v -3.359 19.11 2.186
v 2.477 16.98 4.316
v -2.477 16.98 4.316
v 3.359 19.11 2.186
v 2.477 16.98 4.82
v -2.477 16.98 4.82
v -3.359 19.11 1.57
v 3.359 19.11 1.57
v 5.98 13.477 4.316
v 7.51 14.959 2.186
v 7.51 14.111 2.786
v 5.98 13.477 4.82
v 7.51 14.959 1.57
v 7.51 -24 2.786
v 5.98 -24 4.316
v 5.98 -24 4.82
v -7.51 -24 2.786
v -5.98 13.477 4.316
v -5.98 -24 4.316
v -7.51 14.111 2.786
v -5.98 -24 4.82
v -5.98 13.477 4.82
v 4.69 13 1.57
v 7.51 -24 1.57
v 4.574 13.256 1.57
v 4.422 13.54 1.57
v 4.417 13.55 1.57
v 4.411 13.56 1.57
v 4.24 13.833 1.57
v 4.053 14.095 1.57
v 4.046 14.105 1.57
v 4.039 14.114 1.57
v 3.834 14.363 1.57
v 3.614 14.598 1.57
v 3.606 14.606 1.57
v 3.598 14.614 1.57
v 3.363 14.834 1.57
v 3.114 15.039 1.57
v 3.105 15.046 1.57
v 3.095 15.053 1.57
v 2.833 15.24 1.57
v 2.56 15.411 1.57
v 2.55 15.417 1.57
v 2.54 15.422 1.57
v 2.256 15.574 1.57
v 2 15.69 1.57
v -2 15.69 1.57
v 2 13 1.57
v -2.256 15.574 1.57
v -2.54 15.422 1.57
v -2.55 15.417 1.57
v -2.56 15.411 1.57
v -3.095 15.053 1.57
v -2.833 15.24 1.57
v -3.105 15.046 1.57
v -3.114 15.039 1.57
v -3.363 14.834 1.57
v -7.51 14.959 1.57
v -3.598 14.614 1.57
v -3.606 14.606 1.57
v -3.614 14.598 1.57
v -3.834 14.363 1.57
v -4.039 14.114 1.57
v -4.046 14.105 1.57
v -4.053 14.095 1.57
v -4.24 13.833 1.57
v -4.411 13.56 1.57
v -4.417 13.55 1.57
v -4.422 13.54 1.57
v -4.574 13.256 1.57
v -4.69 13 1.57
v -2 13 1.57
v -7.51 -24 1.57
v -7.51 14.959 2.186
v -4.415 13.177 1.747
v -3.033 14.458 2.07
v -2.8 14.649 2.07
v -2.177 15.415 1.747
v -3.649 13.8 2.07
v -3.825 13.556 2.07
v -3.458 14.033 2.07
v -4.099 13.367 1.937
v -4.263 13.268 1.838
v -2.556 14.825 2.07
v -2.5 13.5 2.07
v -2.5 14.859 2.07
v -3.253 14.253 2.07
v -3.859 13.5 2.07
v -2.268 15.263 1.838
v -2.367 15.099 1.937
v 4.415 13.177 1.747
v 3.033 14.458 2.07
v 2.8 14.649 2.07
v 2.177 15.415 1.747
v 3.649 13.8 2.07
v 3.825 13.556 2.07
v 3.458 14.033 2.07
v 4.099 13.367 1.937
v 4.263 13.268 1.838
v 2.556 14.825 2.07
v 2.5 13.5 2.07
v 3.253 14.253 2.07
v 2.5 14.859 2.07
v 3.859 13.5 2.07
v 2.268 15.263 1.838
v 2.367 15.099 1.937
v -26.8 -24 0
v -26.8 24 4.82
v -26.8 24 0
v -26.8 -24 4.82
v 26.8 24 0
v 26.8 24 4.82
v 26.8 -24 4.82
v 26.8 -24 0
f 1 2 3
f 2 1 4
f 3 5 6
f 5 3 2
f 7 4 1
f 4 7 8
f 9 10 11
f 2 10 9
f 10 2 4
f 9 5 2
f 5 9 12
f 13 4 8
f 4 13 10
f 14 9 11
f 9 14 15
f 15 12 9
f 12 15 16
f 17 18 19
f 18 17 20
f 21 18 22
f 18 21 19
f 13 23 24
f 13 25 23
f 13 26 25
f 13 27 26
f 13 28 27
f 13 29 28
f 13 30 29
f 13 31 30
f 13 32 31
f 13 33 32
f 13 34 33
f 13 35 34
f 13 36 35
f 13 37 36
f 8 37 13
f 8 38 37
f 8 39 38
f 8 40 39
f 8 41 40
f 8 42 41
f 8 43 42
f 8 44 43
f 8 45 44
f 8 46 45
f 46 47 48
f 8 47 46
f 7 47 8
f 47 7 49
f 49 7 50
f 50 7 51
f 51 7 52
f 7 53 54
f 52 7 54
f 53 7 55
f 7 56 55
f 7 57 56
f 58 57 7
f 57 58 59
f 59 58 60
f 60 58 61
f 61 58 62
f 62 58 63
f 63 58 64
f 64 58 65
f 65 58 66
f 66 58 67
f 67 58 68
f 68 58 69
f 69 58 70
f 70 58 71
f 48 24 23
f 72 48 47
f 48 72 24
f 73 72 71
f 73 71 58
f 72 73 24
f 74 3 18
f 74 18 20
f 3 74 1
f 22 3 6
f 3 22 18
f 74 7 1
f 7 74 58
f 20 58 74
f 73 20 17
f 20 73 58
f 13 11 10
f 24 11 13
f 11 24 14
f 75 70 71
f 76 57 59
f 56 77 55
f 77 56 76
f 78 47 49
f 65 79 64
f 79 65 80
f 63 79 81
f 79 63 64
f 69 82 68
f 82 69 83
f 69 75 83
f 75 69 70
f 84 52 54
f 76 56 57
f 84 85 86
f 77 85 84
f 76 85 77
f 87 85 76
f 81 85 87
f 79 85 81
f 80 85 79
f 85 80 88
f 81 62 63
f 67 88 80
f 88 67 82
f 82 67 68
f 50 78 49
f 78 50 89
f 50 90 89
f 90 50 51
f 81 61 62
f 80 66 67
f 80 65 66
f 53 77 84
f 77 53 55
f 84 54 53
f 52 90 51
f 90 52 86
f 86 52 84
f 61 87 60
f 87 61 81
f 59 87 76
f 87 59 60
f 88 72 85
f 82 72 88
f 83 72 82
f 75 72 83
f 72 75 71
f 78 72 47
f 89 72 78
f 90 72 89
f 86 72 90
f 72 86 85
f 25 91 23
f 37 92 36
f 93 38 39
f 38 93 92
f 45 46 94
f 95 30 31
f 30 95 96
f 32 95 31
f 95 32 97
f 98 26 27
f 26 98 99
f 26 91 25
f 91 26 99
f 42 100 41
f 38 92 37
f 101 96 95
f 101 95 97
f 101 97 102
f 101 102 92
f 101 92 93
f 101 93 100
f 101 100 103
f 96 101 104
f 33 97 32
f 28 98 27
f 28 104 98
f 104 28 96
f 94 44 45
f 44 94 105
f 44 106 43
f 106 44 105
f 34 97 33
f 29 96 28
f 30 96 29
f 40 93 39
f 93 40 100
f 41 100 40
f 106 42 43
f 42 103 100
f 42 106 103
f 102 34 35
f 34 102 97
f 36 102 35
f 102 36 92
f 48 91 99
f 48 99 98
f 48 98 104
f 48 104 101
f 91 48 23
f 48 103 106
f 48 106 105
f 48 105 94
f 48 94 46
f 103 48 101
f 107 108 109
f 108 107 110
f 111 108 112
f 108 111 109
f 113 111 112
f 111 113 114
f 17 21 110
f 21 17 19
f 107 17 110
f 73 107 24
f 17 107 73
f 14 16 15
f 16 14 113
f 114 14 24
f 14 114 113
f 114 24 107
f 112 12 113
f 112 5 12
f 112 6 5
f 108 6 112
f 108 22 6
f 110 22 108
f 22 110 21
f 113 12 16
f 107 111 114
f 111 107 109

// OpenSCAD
/*Created by BlackjackDuck (Andy)
Credit to 
    @David D on Printables for Multiboard
    Jonathan at Keep Making for Multiconnect
    Zach at gridfinity.xyz for the Gridfinity standard
    Katie (and her community) at Hands on Katie on Youtube for advice
Licensed Creative Commons 4.0 Attribution Non-Commercial Sharable with Attribution
TODO: 
    - Add ability to tweak rim height
    - Ability to trim grid height (some versions lop off a tiny bit off the top)

Change Log:
- 2024-09-01 
    - Initial release
- 2025-04-08
    - New backs (Multipoint, openGrid, GOEWS)

*/
// Multibin shelf adaptation, September 2026.
// Reference: supplied 2x2x0.5 LU Topped Rail shell, measured 100 x 100 x 30 mm.
// Raised 50 mm locating grid engages the underside channels between shell feet.
// Drop-in fit, not a snap-lock: the shell lifts straight out.
// Self-contained: original slot profiles retained; back plate uses square edges.

/* [Slot Types] */
// Pegboard uses 25.4 mm pitch; pegboardRailLock selects the fitted rail profile.
Connection_Type = "Multipoint - 1 inch Pegboard"; // [Multipoint - 1 inch Pegboard, Multipoint, Multiconnect - Multiboard, Multiconnect - openGrid, Multiconnect - Custom Size, GOEWS]

/* [Parameters] */
// Render just the floor, locating grid and low rim for a fit-test print.
baseOnly = false;
// Nominal Multibin large units (LU), 50 mm per unit for the reference shell.
unitsWide = 1; // [1:1:10]
unitsDeep = 2; // [1:1:10]
multibinUnitSize = 50;
// Clearance PER SIDE around the complete nominal shell footprint.
shellClearance = 0.3; // [0:0.05:1]
rimThickness = 1.5;
// Rim height above the flat supporting surface.
additionalRimHeight = 2;
baseThickness = 2.4;
overrideBackHeight = false;
customBackHeight = 60;
// Remove the entire floor and low rim, leaving only the locating ridges below the shell.
removeBase = false;
bracketDepthPercentage = 50; // [0:1:100]
// Side brace thickness, matching the original Gridfinity design by default.
bracketThickness = 1.5;

/* [Multibin Locating Grid] */
// Horizontal gap PER SIDE along the measured groove profile.
grooveClearance = 0.10; // [0.05:0.05:0.6]
// Gap below the 5.4 mm groove roof. At least 0.3 also clears shallower crossings.
grooveRoofClearance = 0.3; // [0.3:0.05:1]
// Clearance normal to the diagonal corner faces and horizontally at notch tips.
locatorClearance = 0.10; // [0.05:0.05:0.5]

/* [Slot Customization] */
onRampHalfOffset = true;
customDistanceBetweenSlots = 25;
// Removes slots without shifting the remaining slots off their original grid.
subtractedSlots = 0;
// Multipoint modes: use the fitted Pegboard Click channel and its two upper locks.
pegboardRailLock = true;
// Horizontal clearance PER SIDE for the rail channel; slides in from below.
railSlotClearance = 0.11; // [0.05:0.01:0.4]
// Additional seating depth into the back plate, for the Pegboard Click rail only.
railRecessDepth = 0.80; // [0:0.05:0.9]
// Clearance for the rail's 0.4 mm-deep recesses (not the bin locating grid).
railLockClearance = 0.10; // [0.05:0.05:0.2]
// Minimum room below the seated 41 mm-long rail; back height increases as needed.
railEndClearance = 2;
// Overrides both locking options and removes all inward locking bumps.
slotQuickRelease = false;
dimpleScale = 1; // [0.5:0.05:1.5]
// Original Multiconnect control; Multipoint profiles keep their original size.
slotTolerance = 1.00; // [0.925:0.005:1.075]
slotDepthMicroadjustment = 0; // [-0.5:0.05:0.5]
// Generic pop-in ramps apply only when the fitted rail mode is disabled.
onRampEnabled = true;
On_Ramp_Every_X_Slots = 1;
Multiconnect_Stop_Distance_From_Back = 13;

/* [GOEWS Customization] */
GOEWS_Cleat_position = "normal"; // [normal, top, bottom, custom]
GOEWS_Cleat_custom_height_from_top_of_back = 11.24;

/* [Hidden] */
epsilon = 0.02;
// With no floor, put the ridge roots directly on the print bed.
floorHeight = removeBase ? 0 : baseThickness;
measuredGrooveWidth = 6.4;
measuredEntryChamfer = 0.4;
measuredTaperStart = 3.6;
measuredGrooveDepth = 5.4;
// Measured from the supplied STL at the straight section of each bottom foot.
measuredCornerSetback = 5.447764;
measuredNotchHeight = 2.3;
measuredNotchFlatHalfWidth = 2.27817;
footHalfWidth = (multibinUnitSize-measuredGrooveWidth)/2;
ridgeWidth = measuredGrooveWidth - 2*grooveClearance;
ridgeRootWidth = ridgeWidth + 2*measuredEntryChamfer;
ridgeHeight = measuredGrooveDepth - grooveRoofClearance;
ridgeTopWidth = ridgeWidth - 2*(ridgeHeight-measuredTaperStart);
$fa = 6;
$fs = 0.6;
pegboardMode = Connection_Type == "Multipoint - 1 inch Pegboard";
requestedBackHeight = overrideBackHeight ? customBackHeight : 15 + 15*unitsDeep;
onRampEveryXSlots = On_Ramp_Every_X_Slots;
distanceBetweenSlots = pegboardMode ? 25.4 :
    Connection_Type == "Multiconnect - openGrid" ? 28 :
    Connection_Type == "Multiconnect - Custom Size" ? customDistanceBetweenSlots :
    Connection_Type == "GOEWS" ? 42 : 25;
Connection_Standard = pegboardMode || Connection_Type == "Multipoint" ? "Multipoint" :
    Connection_Type == "GOEWS" ? "GOEWS" :
    Connection_Type == "Multiconnect - Multiboard" ||
    Connection_Type == "Multiconnect - openGrid" ||
    Connection_Type == "Multiconnect - Custom Size" ? "Multiconnect" : "Unknown";
railMountMode = pegboardRailLock && Connection_Standard == "Multipoint";
// Rail end centres are 25 mm apart, with 8 mm beyond each centre: 41 mm overall.
// Its upper centre seats at backHeight - stop distance; bottom is 33 mm below it.
minimumRailBackHeight = Multiconnect_Stop_Distance_From_Back + 33 + railEndClearance;
backHeight = railMountMode ? max(requestedBackHeight,minimumRailBackHeight) : requestedBackHeight;
railSlotInset = railMountMode ? railRecessDepth : 0;
railBumpProjection = 0.2 + 0.4 - railLockClearance;
shellWidth = unitsWide*multibinUnitSize;
shellDepth = unitsDeep*multibinUnitSize;
bayWidth = shellWidth + 2*shellClearance;
bayDepth = shellDepth + 2*shellClearance;
minimumWidth = bayWidth + 2*rimThickness;
// Compact width: usable bay plus the two side walls; no pegboard pitch padding.
totalWidth = minimumWidth;
sideMargin = rimThickness;
totalDepth = bayDepth + rimThickness;
totalHeight = backHeight;
bracketDepth = totalDepth*bracketDepthPercentage/100;
backThickness = Connection_Standard == "Multipoint" ? 4.8 : Connection_Standard == "GOEWS" ? 7 : 6.5;
// Keep one pitch of edge margin for slotted backs: three centred slots on 2x2.
// A narrow one-slot back remains supported. GOEWS keeps its original cleat count.
allSlots = Connection_Standard == "GOEWS" ? floor(totalWidth/distanceBetweenSlots + 0.000001) :
    max(1,floor(totalWidth/distanceBetweenSlots + 0.000001)-1);
slotCount = allSlots-subtractedSlots;
// Centre the full slot pattern. Removing slots preserves surviving positions.
firstSlot = (totalWidth-(allSlots-1)*distanceBetweenSlots)/2 + floor(subtractedSlots/2)*distanceBetweenSlots;

assert(unitsWide >= 1 && unitsWide == floor(unitsWide) && unitsDeep >= 1 && unitsDeep == floor(unitsDeep), "LU counts must be positive integers.");
assert(multibinUnitSize > 0 && shellClearance >= 0, "Unit size must be positive and clearance nonnegative.");
assert(rimThickness > 0 && baseThickness > 0 && additionalRimHeight >= 0, "Wall and floor thickness must be positive; rim height must be nonnegative.");
assert(Connection_Standard != "Unknown", "Select a supported Slot Type.");
assert(!railMountMode || (railLockClearance >= 0.05 && railLockClearance <= 0.2), "Rail lock clearance must be between 0.05 and 0.2 mm.");
assert(!railMountMode || (railSlotClearance >= 0.05 && railSlotClearance <= 0.4), "Rail slot clearance must be between 0.05 and 0.4 mm.");
assert(!railMountMode || (railRecessDepth >= 0 && railRecessDepth <= 0.9 && 2.35-slotDepthMicroadjustment-railRecessDepth >= 1.4), "Keep rail recess between 0 and 0.9 mm and at least 1.4 mm behind the slot.");
assert(!railMountMode || railEndClearance >= 0.5, "Allow at least 0.5 mm below the rail; 2 mm is the default.");
assert(distanceBetweenSlots >= 25, "Slot pitch must be at least 25 mm for these profiles.");
assert(subtractedSlots >= 0 && subtractedSlots == floor(subtractedSlots) && slotCount >= 1, "Keep at least one mounting slot; reduce subtractedSlots.");
assert(backHeight >= 25 && backHeight > baseThickness+additionalRimHeight, "Increase back height above the floor and rim, and to at least 25 mm.");
assert(Multiconnect_Stop_Distance_From_Back >= 12 && Multiconnect_Stop_Distance_From_Back < backHeight, "Slot stop distance must be at least 12 mm and less than back height.");
assert(On_Ramp_Every_X_Slots >= 1 && On_Ramp_Every_X_Slots == floor(On_Ramp_Every_X_Slots), "On-ramp frequency must be a positive integer.");
assert(bracketDepthPercentage >= 0 && bracketDepthPercentage <= 100, "Bracket depth must be between 0 and 100 percent.");
assert(bracketThickness > 0 && bracketThickness <= sideMargin, "Side brace thickness must be positive and fit within the side margin.");
assert(grooveClearance > 0 && ridgeWidth > 0 && ridgeWidth < multibinUnitSize, "Groove clearance must be positive and leave a ridge narrower than one LU.");
assert(grooveRoofClearance >= 0.3 && ridgeHeight > measuredTaperStart && ridgeHeight <= measuredGrooveDepth-0.3, "Roof clearance must be at least 0.3 mm and leave ridge engagement above 3.6 mm; crossings are shallower than the main groove.");
assert(ridgeTopWidth > 0 && ridgeRootWidth < multibinUnitSize, "Reduce groove clearance to retain a positive ridge top; unit size must exceed root width.");
assert(locatorClearance > 0 && locatorClearance < 1, "Locator clearance must be positive and below 1 mm.");
assert(footHalfWidth > measuredCornerSetback+measuredNotchFlatHalfWidth+measuredNotchHeight, "Increase unit size to leave space between corner and midpoint locators.");
echo(overall_width_mm=totalWidth, usable_bay_mm=[bayWidth,bayDepth], slot_pitch_mm=distanceBetweenSlots, slot_centres_from_left_mm=[for(i=[0:slotCount-1]) firstSlot+i*distanceBetweenSlots]);
echo(back_height_mm=backHeight, pegboard_rail_lock=railMountMode, rail_bottom_clearance_mm=railMountMode ? backHeight-Multiconnect_Stop_Distance_From_Back-33 : undef);

// Installed orientation: shell datum is floorHeight; printable geometry starts at Z=0.
translate([-totalWidth/2,-backHeight/2,epsilon]) rotate([-90,0,0]) makebackPlate(totalWidth,backHeight,distanceBetweenSlots,backThickness);

module shelf() {
    union() {
        if(!baseOnly)
            makebackPlate(totalWidth, backHeight, distanceBetweenSlots, backThickness);
        locatingGrid();
        if(!removeBase) {
            cube([totalWidth,totalDepth,baseThickness]);
            // Thin side walls enclose the bay, without extra lateral padding.
            for(x=[0,totalWidth-sideMargin])
                translate([x,0,0]) cube([sideMargin,totalDepth,baseThickness+additionalRimHeight]);
            translate([0,bayDepth,0]) cube([totalWidth,rimThickness,baseThickness+additionalRimHeight]);
        }
        if(!baseOnly && bracketDepthPercentage > 0)
            for(x=[sideMargin,totalWidth-sideMargin+bracketThickness])
                translate([x,0,backHeight])
                    shelfBracket(backHeight-floorHeight,bracketDepth,bracketThickness);
    }
}

// Grid lines are registered to the shell's nominal 50 mm cells, independently
// of the mounting pitch.
module locatingGrid() {
    intersection() {
        translate([0,0,max(0,floorHeight-epsilon)])
            cube([totalWidth,totalDepth,ridgeHeight+2*epsilon]);
        union() {
            for(x=[0:unitsWide])
                translate([sideMargin+shellClearance+x*multibinUnitSize,0,floorHeight])
                    ridgeAlongY(totalDepth);
            for(y=[0:unitsDeep])
                translate([totalWidth,shellClearance+y*multibinUnitSize,floorHeight])
                    rotate([0,0,90]) ridgeAlongY(totalWidth);
            for(x=[0:unitsWide-1],y=[0:unitsDeep-1])
                translate([sideMargin+shellClearance+(x+0.5)*multibinUnitSize,
                           shellClearance+(y+0.5)*multibinUnitSize,floorHeight])
                    for(angle=[0:90:270]) rotate([0,0,angle]) {
                        cornerLocator();
                        midpointLocator();
                    }
        }
    }
}

// Plane x+y=C tracks the shell's diagonal face through both vertical chamfers.
function cornerPlane(z) = 2*footHalfWidth-measuredCornerSetback +
    sqrt(2)*(min(max(z,0),measuredEntryChamfer)-measuredEntryChamfer+
             max(z-measuredTaperStart,0)+locatorClearance);
function cornerSection(z) = let(p=multibinUnitSize/2,c=cornerPlane(z))
    [[p,p],[c-p,p],[p,c-p]];

module cornerLocator() {
    levels=[-epsilon,0,measuredEntryChamfer,measuredTaperStart,ridgeHeight];
    for(i=[0:len(levels)-2])
        loftSection(cornerSection(levels[i]),cornerSection(levels[i+1]),levels[i],levels[i+1]);
}

// The midpoint notch is a three-sided relief. Its centre rises at 45 degrees;
// the flanks move by sqrt(2)*Z and the relief closes at Z=2.3 mm.
function notchSection(z) = let(
    p=multibinUnitSize/2,
    tip=footHalfWidth-measuredNotchHeight+max(z,0)+locatorClearance,
    diagonal=footHalfWidth-measuredNotchHeight-measuredNotchFlatHalfWidth+
             sqrt(2)*(max(z,0)+locatorClearance),
    inner=tip-diagonal,outer=p-diagonal)
    [[tip,-inner],[p,-outer],[p,outer],[tip,inner]];

module midpointLocator() {
    loftSection(notchSection(0),notchSection(measuredNotchHeight),-epsilon,measuredNotchHeight);
}

// Join corresponding vertices of two counter-clockwise convex sections.
module loftSection(bottom,top,z0,z1) {
    n=len(bottom);
    polyhedron(
        points=concat([for(p=bottom) [p[0],p[1],z0]], [for(p=top) [p[0],p[1],z1]]),
        faces=concat([[for(i=[n-1:-1:0]) i]], [[for(i=[0:n-1]) n+i]],
                     [for(i=[0:n-1]) [i,(i+1)%n,(i+1)%n+n,i+n]]),convexity=4);
}

module ridgeAlongY(length) {
    // Extrusion maps local profile Y to installed Z and extends in positive Y.
    translate([0,length,0]) rotate([90,0,0])
        linear_extrude(height=length)
            // Match the 0.4 mm entry chamfer, straight channel, and upper 45-degree
            // taper. Horizontal clearance is subtracted once on each side.
            polygon([[-ridgeRootWidth/2,-epsilon], [ridgeRootWidth/2,-epsilon],
                     [ridgeRootWidth/2,0],
                     [ridgeWidth/2,measuredEntryChamfer],
                     [ridgeWidth/2,measuredTaperStart],
                     [ridgeTopWidth/2,ridgeHeight],
                     [-ridgeTopWidth/2,ridgeHeight],
                     [-ridgeWidth/2,measuredTaperStart],
                     [-ridgeWidth/2,measuredEntryChamfer],
                     [-ridgeRootWidth/2,0]]);
}

module shelfBracket(bracketHeight, bracketDepth, rimThickness) {
    rotate([-90,0,90]) linear_extrude(height=rimThickness)
        polygon([[0,0],[0,bracketHeight],[bracketDepth,bracketHeight]]);
}

module makebackPlate(backWidth, backHeight, distanceBetweenSlots, backThickness) {
    cleatDrop = GOEWS_Cleat_position == "normal" ? 11.24 : GOEWS_Cleat_position == "top" ? 0 : GOEWS_Cleat_position == "bottom" ? backHeight-13.15 : GOEWS_Cleat_custom_height_from_top_of_back;
    assert(Connection_Standard != "GOEWS" || (cleatDrop >= 0 && cleatDrop <= backHeight-13.15), "GOEWS cleat must stay within the back height.");
    difference() {
        union() {
            // Small overlap with the floor/rim ensures a single connected body.
            translate([0,-backThickness,0]) cube([backWidth,backThickness+epsilon,backHeight]);
            if(Connection_Standard == "GOEWS")
                for(i=[0:slotCount-1])
                    translate([firstSlot+i*distanceBetweenSlots,-backThickness+epsilon,backHeight-cleatDrop]) GOEWSCleatTool(totalHeight);
        }
        for(i=[0:slotCount-1]) {
            x = firstSlot+i*distanceBetweenSlots;
            if(Connection_Standard != "GOEWS")
                translate([x,-2.35+slotDepthMicroadjustment+railSlotInset,backHeight-Multiconnect_Stop_Distance_From_Back]) {
                    if(Connection_Standard == "Multipoint") multiPointSlotTool(totalHeight);
                    else multiConnectSlotTool(totalHeight);
                }
            else {
                translate([x,epsilon,backHeight+0.46-cleatDrop+11.24]) rotate([90,0,0]) cylinder(h=backThickness+2*epsilon,r=7,$fn=96);
                translate([x,-4,backHeight+0.46-cleatDrop+11.24]) rotate([-90,0,0]) cylinder(h=4+2*epsilon,r=10,$fn=96);
            }
        }
    }
}

//Create GOEWS cleats
module GOEWSCleatTool(totalHeight) {
    difference() {
        // main profile
        rotate(a = [180,0,0]) 
            linear_extrude(height = 13.15) 
                let (cleatProfile = [[0,0],[15.1,0],[17.6,2.5],[15.1,5],[0,5]])
                union(){
                    polygon(points = cleatProfile);
                    mirror([1,0,0])
                        polygon(points = cleatProfile);
                };
        // angled slice off bottom
        translate([-17.6, -8, -26.3])
            rotate([45, 0, 0])
                translate([0, 5, 0])
                    cube([35.2, 10, 15]);
        // cutout
        translate([0, -0.005, 2.964])
            rotate([90, 0, 0])
                cylinder(h = 6, r = 9.5, $fn = 256);
    }
}

//Create Slot Tool
module multiConnectSlotTool(totalHeight) {
    //In slotTool, added a new variable distanceOffset which is set by the option:
    distanceOffset = onRampHalfOffset ? distanceBetweenSlots / 2 : 0;
    scale(v = slotTolerance)
    //slot minus optional dimple with optional on-ramp
    let (slotProfile = [[0,0],[10.15,0],[10.15,1.2121],[7.65,3.712],[7.65,5],[0,5]])
    difference() {
        union() {
            //round top
            rotate(a = [90,0,0,]) 
                rotate_extrude($fn=50) 
                    polygon(points = slotProfile);
            //long slot
            translate(v = [0,0,0]) 
                rotate(a = [180,0,0]) 
                linear_extrude(height = totalHeight+1) 
                    union(){
                        polygon(points = slotProfile);
                        mirror([1,0,0])
                            polygon(points = slotProfile);
                    }
            //on-ramp
            if(onRampEnabled)
                for(y = [1:onRampEveryXSlots:totalHeight/distanceBetweenSlots])
                    //then modify the translate within the on-ramp code to include the offset
                    translate(v = [0,-5,(-y*distanceBetweenSlots)+distanceOffset])
                        rotate(a = [-90,0,0]) 
                            cylinder(h = 5, r1 = 12, r2 = 10.15);
        }
        //dimple
        if (slotQuickRelease == false)
            scale(v = dimpleScale) 
            rotate(a = [90,0,0,]) 
                rotate_extrude($fn=50) 
                    polygon(points = [[0,0],[0,1.5],[1.5,0]]);
    }
}

module multiPointSlotTool(totalHeight) {
    slotBaseRadius = 17.0 / 2.0;  // wider width of the inner part of the channel
    slotSkinRadius = 13.75 / 2.0;  // narrower part of the channel near the skin of the model
    slotBaseCatchDepth = .2;  // innermost before the chamfer, base to chamfer height
    slotBaseToSkinChamferDepth = 2.2;  // middle part of the chamfer
    slotSkinDepth = .1;  // top or skinmost part of the channel
    distanceOffset = onRampHalfOffset ? distanceBetweenSlots / 2 : 0;
    octogonScale = 1/sin(67.5);  // math convenience function to convert an octogon hypotenuse to the short length
    let (slotProfile = [
        [0,0],
        [slotBaseRadius,0],
        [slotBaseRadius, slotBaseCatchDepth],
        [slotSkinRadius, slotBaseCatchDepth + slotBaseToSkinChamferDepth],
        [slotSkinRadius, slotBaseCatchDepth + slotBaseToSkinChamferDepth + slotSkinDepth],
        [0, slotBaseCatchDepth + slotBaseToSkinChamferDepth + slotSkinDepth]
    ])
    union() {
        //octagonal top. difference on union because we need to support the dimples cut in.
        difference(){
            // Rail-specific continuous guide; legacy Multipoint keeps its profile.
            if(railMountMode) pegboardRailChannel(totalHeight);
            else union(){
                scale([octogonScale,1,octogonScale])
                rotate(a = [90,67.5,0,]) 
                    rotate_extrude($fn=8) 
                        polygon(points = slotProfile);
                //long slot
                translate(v = [0,0,0]) 
                    rotate(a = [180,0,0]) 
                    linear_extrude(height = totalHeight+1) 
                        union(){
                            polygon(points = slotProfile);
                            mirror([1,0,0])
                                polygon(points = slotProfile);
                        }
            }
            //dimples on each catch point
            if (!slotQuickRelease){
                if(railMountMode)
                    pegboardRailBumps();
                else
                    for(z = [1:On_Ramp_Every_X_Slots:totalHeight/distanceBetweenSlots ])
                        yMultipointSlotDimples(z, slotBaseRadius, distanceBetweenSlots, distanceOffset);
            }
        }
        //on-ramp
        if(onRampEnabled && !railMountMode)
            union(){
                for(y = [1:On_Ramp_Every_X_Slots:totalHeight/distanceBetweenSlots])
                {
                    // create the main entry hexagons
                    translate(v = [0,-5,(-y*distanceBetweenSlots)+distanceOffset])
                    scale([octogonScale,1,octogonScale])
                        rotate(a = [-90,67.5,0]) 
                            cylinder(h=5, r=slotBaseRadius, $fn=8);
                    
                // make the required "pop-in" locking channel dimples.
                xSlotDimples(y, slotBaseRadius, distanceBetweenSlots, distanceOffset);
                mirror([1,0,0])
                     xSlotDimples(y, slotBaseRadius, distanceBetweenSlots, distanceOffset);
                }
            }
    }
}

// Measured supported rail: 14.8 mm wide, 8 mm end radius, 45-degree taper.
// With its face at depth 0.2, the side taper starts at 1.216152 mm;
// the end taper starts at 0.616152 mm. Preserve the lock's seating depth.
// Continuous sides replace generic pop-in ramps: insert the rail from below.
module pegboardRailChannel(height) {
    c=railSlotClearance;
    d=1.216152;
    // Extend through the back face after moving the entire channel and locks inward.
    cutDepth=2.5+railSlotInset+max(0,slotDepthMicroadjustment);
    // The supplied rail transitions to its neck near X=-0.454 mm.
    // Do not extrapolate its 45-degree taper into that neck when recessed deeper.
    taperEnd=min(cutDepth,2.746152);
    profile=[[0,0],[7.4+c,0],[7.4+c,d],
             [7.4+c-(taperEnd-d),taperEnd],
             [7.4+c-(taperEnd-d),cutDepth],[0,cutDepth]];
    module guide(length) {
        rotate([180,0,0]) linear_extrude(height=length)
            union() {polygon(profile); mirror([1,0,0]) polygon(profile);}
    }
    union() {
        guide(height+1);
        intersection() {
            scale([1/sin(67.5),1,1/sin(67.5)]) rotate([90,67.5,0])
                rotate_extrude($fn=8)
                    polygon([[0,0],[8+c,0],[8+c,0.616152],
                             [8+c-(taperEnd-0.616152),taperEnd],
                             [8+c-(taperEnd-0.616152),cutDepth],[0,cutDepth]]);
            translate([0,0,10]) guide(20);
        }
    }
}

// Measured rail recesses: at the rail face, radius 5 mm and two straight edges
// 2.1 mm from the upper centre; all three walls taper inward at 45 degrees to
// a 0.4 mm depth. Rail face is 0.2 mm away from the slot's innermost plane.
// Keep only the upper pair, once per slot, independent of ramp pitch/offset.
module pegboardRailBumps() {
    for(side=[-1,1]) scale([side,1,1])
        rotate([90,0,0]) intersection() {
            r=5.2-railLockClearance;
            a=1.9+railLockClearance;
            p=railBumpProjection;
            translate([0,0,-epsilon])
                cylinder(h=p+epsilon,r1=r+epsilon,r2=r-p,$fn=96);
            loftSection([[a-epsilon,a-epsilon],[6,a-epsilon],[6,6],[a-epsilon,6]],
                        [[a+p,a+p],[6,a+p],[6,6],[a+p,6]],-epsilon,p);
        }
}

module xSlotDimples(y, slotBaseRadius, distanceBetweenSlots, distanceOffset){
    //Multipoint dimples are truncated (on top and side) pyramids
    //this function makes one pair of them
    dimple_pitch = 4.5 / 2; //distance between locking dimples
    difference(){
        translate(v = [slotBaseRadius-0.01,0,(-y*distanceBetweenSlots)+distanceOffset+dimple_pitch])
            rotate(a = [90,45,90]) 
            rotate_extrude($fn=4) 
                polygon(points = [[0,0],[0,1.5],[1.7,0]]);
        translate(v = [slotBaseRadius+.75, -2, (-y*distanceBetweenSlots)+distanceOffset-1])
                cube(4);
        translate(v = [slotBaseRadius-2, 0.01, (-y*distanceBetweenSlots)+distanceOffset-1])
                cube(7);
        }
        difference(){
        translate(v = [slotBaseRadius-0.01,0,(-y*distanceBetweenSlots)+distanceOffset-dimple_pitch])
            rotate(a = [90,45,90]) 
            rotate_extrude($fn=4) 
                polygon(points = [[0,0],[0,1.5],[1.7,0]]);
        translate(v = [slotBaseRadius+.75, -2.01, (-y*distanceBetweenSlots)+distanceOffset-3])
                cube(4);
        translate(v = [slotBaseRadius-2, 0.01, (-y*distanceBetweenSlots)+distanceOffset-5])
                cube(10);
        }
}
module yMultipointSlotDimples(z, slotBaseRadius, distanceBetweenSlots, distanceOffset){
    //This creates the multipoint point out dimples within the channel.
    octogonScale = 1/sin(67.5);
    difference(){
        translate(v = [0,0.01,((-z+.5)*distanceBetweenSlots)+distanceOffset])
            scale([octogonScale,1,octogonScale])
                rotate(a = [-90,67.5,0]) 
                    rotate_extrude($fn=8) 
                        polygon(points = [[0,0],[0,-1.5],[5,0]]);
        translate(v = [0,0,((-z+.5)*distanceBetweenSlots)+distanceOffset])
            cube([10,3,3], center=true);
        translate(v = [0,0,((-z+.5)*distanceBetweenSlots)+distanceOffset])
           cube([3,3,10], center=true);
    }
}   
